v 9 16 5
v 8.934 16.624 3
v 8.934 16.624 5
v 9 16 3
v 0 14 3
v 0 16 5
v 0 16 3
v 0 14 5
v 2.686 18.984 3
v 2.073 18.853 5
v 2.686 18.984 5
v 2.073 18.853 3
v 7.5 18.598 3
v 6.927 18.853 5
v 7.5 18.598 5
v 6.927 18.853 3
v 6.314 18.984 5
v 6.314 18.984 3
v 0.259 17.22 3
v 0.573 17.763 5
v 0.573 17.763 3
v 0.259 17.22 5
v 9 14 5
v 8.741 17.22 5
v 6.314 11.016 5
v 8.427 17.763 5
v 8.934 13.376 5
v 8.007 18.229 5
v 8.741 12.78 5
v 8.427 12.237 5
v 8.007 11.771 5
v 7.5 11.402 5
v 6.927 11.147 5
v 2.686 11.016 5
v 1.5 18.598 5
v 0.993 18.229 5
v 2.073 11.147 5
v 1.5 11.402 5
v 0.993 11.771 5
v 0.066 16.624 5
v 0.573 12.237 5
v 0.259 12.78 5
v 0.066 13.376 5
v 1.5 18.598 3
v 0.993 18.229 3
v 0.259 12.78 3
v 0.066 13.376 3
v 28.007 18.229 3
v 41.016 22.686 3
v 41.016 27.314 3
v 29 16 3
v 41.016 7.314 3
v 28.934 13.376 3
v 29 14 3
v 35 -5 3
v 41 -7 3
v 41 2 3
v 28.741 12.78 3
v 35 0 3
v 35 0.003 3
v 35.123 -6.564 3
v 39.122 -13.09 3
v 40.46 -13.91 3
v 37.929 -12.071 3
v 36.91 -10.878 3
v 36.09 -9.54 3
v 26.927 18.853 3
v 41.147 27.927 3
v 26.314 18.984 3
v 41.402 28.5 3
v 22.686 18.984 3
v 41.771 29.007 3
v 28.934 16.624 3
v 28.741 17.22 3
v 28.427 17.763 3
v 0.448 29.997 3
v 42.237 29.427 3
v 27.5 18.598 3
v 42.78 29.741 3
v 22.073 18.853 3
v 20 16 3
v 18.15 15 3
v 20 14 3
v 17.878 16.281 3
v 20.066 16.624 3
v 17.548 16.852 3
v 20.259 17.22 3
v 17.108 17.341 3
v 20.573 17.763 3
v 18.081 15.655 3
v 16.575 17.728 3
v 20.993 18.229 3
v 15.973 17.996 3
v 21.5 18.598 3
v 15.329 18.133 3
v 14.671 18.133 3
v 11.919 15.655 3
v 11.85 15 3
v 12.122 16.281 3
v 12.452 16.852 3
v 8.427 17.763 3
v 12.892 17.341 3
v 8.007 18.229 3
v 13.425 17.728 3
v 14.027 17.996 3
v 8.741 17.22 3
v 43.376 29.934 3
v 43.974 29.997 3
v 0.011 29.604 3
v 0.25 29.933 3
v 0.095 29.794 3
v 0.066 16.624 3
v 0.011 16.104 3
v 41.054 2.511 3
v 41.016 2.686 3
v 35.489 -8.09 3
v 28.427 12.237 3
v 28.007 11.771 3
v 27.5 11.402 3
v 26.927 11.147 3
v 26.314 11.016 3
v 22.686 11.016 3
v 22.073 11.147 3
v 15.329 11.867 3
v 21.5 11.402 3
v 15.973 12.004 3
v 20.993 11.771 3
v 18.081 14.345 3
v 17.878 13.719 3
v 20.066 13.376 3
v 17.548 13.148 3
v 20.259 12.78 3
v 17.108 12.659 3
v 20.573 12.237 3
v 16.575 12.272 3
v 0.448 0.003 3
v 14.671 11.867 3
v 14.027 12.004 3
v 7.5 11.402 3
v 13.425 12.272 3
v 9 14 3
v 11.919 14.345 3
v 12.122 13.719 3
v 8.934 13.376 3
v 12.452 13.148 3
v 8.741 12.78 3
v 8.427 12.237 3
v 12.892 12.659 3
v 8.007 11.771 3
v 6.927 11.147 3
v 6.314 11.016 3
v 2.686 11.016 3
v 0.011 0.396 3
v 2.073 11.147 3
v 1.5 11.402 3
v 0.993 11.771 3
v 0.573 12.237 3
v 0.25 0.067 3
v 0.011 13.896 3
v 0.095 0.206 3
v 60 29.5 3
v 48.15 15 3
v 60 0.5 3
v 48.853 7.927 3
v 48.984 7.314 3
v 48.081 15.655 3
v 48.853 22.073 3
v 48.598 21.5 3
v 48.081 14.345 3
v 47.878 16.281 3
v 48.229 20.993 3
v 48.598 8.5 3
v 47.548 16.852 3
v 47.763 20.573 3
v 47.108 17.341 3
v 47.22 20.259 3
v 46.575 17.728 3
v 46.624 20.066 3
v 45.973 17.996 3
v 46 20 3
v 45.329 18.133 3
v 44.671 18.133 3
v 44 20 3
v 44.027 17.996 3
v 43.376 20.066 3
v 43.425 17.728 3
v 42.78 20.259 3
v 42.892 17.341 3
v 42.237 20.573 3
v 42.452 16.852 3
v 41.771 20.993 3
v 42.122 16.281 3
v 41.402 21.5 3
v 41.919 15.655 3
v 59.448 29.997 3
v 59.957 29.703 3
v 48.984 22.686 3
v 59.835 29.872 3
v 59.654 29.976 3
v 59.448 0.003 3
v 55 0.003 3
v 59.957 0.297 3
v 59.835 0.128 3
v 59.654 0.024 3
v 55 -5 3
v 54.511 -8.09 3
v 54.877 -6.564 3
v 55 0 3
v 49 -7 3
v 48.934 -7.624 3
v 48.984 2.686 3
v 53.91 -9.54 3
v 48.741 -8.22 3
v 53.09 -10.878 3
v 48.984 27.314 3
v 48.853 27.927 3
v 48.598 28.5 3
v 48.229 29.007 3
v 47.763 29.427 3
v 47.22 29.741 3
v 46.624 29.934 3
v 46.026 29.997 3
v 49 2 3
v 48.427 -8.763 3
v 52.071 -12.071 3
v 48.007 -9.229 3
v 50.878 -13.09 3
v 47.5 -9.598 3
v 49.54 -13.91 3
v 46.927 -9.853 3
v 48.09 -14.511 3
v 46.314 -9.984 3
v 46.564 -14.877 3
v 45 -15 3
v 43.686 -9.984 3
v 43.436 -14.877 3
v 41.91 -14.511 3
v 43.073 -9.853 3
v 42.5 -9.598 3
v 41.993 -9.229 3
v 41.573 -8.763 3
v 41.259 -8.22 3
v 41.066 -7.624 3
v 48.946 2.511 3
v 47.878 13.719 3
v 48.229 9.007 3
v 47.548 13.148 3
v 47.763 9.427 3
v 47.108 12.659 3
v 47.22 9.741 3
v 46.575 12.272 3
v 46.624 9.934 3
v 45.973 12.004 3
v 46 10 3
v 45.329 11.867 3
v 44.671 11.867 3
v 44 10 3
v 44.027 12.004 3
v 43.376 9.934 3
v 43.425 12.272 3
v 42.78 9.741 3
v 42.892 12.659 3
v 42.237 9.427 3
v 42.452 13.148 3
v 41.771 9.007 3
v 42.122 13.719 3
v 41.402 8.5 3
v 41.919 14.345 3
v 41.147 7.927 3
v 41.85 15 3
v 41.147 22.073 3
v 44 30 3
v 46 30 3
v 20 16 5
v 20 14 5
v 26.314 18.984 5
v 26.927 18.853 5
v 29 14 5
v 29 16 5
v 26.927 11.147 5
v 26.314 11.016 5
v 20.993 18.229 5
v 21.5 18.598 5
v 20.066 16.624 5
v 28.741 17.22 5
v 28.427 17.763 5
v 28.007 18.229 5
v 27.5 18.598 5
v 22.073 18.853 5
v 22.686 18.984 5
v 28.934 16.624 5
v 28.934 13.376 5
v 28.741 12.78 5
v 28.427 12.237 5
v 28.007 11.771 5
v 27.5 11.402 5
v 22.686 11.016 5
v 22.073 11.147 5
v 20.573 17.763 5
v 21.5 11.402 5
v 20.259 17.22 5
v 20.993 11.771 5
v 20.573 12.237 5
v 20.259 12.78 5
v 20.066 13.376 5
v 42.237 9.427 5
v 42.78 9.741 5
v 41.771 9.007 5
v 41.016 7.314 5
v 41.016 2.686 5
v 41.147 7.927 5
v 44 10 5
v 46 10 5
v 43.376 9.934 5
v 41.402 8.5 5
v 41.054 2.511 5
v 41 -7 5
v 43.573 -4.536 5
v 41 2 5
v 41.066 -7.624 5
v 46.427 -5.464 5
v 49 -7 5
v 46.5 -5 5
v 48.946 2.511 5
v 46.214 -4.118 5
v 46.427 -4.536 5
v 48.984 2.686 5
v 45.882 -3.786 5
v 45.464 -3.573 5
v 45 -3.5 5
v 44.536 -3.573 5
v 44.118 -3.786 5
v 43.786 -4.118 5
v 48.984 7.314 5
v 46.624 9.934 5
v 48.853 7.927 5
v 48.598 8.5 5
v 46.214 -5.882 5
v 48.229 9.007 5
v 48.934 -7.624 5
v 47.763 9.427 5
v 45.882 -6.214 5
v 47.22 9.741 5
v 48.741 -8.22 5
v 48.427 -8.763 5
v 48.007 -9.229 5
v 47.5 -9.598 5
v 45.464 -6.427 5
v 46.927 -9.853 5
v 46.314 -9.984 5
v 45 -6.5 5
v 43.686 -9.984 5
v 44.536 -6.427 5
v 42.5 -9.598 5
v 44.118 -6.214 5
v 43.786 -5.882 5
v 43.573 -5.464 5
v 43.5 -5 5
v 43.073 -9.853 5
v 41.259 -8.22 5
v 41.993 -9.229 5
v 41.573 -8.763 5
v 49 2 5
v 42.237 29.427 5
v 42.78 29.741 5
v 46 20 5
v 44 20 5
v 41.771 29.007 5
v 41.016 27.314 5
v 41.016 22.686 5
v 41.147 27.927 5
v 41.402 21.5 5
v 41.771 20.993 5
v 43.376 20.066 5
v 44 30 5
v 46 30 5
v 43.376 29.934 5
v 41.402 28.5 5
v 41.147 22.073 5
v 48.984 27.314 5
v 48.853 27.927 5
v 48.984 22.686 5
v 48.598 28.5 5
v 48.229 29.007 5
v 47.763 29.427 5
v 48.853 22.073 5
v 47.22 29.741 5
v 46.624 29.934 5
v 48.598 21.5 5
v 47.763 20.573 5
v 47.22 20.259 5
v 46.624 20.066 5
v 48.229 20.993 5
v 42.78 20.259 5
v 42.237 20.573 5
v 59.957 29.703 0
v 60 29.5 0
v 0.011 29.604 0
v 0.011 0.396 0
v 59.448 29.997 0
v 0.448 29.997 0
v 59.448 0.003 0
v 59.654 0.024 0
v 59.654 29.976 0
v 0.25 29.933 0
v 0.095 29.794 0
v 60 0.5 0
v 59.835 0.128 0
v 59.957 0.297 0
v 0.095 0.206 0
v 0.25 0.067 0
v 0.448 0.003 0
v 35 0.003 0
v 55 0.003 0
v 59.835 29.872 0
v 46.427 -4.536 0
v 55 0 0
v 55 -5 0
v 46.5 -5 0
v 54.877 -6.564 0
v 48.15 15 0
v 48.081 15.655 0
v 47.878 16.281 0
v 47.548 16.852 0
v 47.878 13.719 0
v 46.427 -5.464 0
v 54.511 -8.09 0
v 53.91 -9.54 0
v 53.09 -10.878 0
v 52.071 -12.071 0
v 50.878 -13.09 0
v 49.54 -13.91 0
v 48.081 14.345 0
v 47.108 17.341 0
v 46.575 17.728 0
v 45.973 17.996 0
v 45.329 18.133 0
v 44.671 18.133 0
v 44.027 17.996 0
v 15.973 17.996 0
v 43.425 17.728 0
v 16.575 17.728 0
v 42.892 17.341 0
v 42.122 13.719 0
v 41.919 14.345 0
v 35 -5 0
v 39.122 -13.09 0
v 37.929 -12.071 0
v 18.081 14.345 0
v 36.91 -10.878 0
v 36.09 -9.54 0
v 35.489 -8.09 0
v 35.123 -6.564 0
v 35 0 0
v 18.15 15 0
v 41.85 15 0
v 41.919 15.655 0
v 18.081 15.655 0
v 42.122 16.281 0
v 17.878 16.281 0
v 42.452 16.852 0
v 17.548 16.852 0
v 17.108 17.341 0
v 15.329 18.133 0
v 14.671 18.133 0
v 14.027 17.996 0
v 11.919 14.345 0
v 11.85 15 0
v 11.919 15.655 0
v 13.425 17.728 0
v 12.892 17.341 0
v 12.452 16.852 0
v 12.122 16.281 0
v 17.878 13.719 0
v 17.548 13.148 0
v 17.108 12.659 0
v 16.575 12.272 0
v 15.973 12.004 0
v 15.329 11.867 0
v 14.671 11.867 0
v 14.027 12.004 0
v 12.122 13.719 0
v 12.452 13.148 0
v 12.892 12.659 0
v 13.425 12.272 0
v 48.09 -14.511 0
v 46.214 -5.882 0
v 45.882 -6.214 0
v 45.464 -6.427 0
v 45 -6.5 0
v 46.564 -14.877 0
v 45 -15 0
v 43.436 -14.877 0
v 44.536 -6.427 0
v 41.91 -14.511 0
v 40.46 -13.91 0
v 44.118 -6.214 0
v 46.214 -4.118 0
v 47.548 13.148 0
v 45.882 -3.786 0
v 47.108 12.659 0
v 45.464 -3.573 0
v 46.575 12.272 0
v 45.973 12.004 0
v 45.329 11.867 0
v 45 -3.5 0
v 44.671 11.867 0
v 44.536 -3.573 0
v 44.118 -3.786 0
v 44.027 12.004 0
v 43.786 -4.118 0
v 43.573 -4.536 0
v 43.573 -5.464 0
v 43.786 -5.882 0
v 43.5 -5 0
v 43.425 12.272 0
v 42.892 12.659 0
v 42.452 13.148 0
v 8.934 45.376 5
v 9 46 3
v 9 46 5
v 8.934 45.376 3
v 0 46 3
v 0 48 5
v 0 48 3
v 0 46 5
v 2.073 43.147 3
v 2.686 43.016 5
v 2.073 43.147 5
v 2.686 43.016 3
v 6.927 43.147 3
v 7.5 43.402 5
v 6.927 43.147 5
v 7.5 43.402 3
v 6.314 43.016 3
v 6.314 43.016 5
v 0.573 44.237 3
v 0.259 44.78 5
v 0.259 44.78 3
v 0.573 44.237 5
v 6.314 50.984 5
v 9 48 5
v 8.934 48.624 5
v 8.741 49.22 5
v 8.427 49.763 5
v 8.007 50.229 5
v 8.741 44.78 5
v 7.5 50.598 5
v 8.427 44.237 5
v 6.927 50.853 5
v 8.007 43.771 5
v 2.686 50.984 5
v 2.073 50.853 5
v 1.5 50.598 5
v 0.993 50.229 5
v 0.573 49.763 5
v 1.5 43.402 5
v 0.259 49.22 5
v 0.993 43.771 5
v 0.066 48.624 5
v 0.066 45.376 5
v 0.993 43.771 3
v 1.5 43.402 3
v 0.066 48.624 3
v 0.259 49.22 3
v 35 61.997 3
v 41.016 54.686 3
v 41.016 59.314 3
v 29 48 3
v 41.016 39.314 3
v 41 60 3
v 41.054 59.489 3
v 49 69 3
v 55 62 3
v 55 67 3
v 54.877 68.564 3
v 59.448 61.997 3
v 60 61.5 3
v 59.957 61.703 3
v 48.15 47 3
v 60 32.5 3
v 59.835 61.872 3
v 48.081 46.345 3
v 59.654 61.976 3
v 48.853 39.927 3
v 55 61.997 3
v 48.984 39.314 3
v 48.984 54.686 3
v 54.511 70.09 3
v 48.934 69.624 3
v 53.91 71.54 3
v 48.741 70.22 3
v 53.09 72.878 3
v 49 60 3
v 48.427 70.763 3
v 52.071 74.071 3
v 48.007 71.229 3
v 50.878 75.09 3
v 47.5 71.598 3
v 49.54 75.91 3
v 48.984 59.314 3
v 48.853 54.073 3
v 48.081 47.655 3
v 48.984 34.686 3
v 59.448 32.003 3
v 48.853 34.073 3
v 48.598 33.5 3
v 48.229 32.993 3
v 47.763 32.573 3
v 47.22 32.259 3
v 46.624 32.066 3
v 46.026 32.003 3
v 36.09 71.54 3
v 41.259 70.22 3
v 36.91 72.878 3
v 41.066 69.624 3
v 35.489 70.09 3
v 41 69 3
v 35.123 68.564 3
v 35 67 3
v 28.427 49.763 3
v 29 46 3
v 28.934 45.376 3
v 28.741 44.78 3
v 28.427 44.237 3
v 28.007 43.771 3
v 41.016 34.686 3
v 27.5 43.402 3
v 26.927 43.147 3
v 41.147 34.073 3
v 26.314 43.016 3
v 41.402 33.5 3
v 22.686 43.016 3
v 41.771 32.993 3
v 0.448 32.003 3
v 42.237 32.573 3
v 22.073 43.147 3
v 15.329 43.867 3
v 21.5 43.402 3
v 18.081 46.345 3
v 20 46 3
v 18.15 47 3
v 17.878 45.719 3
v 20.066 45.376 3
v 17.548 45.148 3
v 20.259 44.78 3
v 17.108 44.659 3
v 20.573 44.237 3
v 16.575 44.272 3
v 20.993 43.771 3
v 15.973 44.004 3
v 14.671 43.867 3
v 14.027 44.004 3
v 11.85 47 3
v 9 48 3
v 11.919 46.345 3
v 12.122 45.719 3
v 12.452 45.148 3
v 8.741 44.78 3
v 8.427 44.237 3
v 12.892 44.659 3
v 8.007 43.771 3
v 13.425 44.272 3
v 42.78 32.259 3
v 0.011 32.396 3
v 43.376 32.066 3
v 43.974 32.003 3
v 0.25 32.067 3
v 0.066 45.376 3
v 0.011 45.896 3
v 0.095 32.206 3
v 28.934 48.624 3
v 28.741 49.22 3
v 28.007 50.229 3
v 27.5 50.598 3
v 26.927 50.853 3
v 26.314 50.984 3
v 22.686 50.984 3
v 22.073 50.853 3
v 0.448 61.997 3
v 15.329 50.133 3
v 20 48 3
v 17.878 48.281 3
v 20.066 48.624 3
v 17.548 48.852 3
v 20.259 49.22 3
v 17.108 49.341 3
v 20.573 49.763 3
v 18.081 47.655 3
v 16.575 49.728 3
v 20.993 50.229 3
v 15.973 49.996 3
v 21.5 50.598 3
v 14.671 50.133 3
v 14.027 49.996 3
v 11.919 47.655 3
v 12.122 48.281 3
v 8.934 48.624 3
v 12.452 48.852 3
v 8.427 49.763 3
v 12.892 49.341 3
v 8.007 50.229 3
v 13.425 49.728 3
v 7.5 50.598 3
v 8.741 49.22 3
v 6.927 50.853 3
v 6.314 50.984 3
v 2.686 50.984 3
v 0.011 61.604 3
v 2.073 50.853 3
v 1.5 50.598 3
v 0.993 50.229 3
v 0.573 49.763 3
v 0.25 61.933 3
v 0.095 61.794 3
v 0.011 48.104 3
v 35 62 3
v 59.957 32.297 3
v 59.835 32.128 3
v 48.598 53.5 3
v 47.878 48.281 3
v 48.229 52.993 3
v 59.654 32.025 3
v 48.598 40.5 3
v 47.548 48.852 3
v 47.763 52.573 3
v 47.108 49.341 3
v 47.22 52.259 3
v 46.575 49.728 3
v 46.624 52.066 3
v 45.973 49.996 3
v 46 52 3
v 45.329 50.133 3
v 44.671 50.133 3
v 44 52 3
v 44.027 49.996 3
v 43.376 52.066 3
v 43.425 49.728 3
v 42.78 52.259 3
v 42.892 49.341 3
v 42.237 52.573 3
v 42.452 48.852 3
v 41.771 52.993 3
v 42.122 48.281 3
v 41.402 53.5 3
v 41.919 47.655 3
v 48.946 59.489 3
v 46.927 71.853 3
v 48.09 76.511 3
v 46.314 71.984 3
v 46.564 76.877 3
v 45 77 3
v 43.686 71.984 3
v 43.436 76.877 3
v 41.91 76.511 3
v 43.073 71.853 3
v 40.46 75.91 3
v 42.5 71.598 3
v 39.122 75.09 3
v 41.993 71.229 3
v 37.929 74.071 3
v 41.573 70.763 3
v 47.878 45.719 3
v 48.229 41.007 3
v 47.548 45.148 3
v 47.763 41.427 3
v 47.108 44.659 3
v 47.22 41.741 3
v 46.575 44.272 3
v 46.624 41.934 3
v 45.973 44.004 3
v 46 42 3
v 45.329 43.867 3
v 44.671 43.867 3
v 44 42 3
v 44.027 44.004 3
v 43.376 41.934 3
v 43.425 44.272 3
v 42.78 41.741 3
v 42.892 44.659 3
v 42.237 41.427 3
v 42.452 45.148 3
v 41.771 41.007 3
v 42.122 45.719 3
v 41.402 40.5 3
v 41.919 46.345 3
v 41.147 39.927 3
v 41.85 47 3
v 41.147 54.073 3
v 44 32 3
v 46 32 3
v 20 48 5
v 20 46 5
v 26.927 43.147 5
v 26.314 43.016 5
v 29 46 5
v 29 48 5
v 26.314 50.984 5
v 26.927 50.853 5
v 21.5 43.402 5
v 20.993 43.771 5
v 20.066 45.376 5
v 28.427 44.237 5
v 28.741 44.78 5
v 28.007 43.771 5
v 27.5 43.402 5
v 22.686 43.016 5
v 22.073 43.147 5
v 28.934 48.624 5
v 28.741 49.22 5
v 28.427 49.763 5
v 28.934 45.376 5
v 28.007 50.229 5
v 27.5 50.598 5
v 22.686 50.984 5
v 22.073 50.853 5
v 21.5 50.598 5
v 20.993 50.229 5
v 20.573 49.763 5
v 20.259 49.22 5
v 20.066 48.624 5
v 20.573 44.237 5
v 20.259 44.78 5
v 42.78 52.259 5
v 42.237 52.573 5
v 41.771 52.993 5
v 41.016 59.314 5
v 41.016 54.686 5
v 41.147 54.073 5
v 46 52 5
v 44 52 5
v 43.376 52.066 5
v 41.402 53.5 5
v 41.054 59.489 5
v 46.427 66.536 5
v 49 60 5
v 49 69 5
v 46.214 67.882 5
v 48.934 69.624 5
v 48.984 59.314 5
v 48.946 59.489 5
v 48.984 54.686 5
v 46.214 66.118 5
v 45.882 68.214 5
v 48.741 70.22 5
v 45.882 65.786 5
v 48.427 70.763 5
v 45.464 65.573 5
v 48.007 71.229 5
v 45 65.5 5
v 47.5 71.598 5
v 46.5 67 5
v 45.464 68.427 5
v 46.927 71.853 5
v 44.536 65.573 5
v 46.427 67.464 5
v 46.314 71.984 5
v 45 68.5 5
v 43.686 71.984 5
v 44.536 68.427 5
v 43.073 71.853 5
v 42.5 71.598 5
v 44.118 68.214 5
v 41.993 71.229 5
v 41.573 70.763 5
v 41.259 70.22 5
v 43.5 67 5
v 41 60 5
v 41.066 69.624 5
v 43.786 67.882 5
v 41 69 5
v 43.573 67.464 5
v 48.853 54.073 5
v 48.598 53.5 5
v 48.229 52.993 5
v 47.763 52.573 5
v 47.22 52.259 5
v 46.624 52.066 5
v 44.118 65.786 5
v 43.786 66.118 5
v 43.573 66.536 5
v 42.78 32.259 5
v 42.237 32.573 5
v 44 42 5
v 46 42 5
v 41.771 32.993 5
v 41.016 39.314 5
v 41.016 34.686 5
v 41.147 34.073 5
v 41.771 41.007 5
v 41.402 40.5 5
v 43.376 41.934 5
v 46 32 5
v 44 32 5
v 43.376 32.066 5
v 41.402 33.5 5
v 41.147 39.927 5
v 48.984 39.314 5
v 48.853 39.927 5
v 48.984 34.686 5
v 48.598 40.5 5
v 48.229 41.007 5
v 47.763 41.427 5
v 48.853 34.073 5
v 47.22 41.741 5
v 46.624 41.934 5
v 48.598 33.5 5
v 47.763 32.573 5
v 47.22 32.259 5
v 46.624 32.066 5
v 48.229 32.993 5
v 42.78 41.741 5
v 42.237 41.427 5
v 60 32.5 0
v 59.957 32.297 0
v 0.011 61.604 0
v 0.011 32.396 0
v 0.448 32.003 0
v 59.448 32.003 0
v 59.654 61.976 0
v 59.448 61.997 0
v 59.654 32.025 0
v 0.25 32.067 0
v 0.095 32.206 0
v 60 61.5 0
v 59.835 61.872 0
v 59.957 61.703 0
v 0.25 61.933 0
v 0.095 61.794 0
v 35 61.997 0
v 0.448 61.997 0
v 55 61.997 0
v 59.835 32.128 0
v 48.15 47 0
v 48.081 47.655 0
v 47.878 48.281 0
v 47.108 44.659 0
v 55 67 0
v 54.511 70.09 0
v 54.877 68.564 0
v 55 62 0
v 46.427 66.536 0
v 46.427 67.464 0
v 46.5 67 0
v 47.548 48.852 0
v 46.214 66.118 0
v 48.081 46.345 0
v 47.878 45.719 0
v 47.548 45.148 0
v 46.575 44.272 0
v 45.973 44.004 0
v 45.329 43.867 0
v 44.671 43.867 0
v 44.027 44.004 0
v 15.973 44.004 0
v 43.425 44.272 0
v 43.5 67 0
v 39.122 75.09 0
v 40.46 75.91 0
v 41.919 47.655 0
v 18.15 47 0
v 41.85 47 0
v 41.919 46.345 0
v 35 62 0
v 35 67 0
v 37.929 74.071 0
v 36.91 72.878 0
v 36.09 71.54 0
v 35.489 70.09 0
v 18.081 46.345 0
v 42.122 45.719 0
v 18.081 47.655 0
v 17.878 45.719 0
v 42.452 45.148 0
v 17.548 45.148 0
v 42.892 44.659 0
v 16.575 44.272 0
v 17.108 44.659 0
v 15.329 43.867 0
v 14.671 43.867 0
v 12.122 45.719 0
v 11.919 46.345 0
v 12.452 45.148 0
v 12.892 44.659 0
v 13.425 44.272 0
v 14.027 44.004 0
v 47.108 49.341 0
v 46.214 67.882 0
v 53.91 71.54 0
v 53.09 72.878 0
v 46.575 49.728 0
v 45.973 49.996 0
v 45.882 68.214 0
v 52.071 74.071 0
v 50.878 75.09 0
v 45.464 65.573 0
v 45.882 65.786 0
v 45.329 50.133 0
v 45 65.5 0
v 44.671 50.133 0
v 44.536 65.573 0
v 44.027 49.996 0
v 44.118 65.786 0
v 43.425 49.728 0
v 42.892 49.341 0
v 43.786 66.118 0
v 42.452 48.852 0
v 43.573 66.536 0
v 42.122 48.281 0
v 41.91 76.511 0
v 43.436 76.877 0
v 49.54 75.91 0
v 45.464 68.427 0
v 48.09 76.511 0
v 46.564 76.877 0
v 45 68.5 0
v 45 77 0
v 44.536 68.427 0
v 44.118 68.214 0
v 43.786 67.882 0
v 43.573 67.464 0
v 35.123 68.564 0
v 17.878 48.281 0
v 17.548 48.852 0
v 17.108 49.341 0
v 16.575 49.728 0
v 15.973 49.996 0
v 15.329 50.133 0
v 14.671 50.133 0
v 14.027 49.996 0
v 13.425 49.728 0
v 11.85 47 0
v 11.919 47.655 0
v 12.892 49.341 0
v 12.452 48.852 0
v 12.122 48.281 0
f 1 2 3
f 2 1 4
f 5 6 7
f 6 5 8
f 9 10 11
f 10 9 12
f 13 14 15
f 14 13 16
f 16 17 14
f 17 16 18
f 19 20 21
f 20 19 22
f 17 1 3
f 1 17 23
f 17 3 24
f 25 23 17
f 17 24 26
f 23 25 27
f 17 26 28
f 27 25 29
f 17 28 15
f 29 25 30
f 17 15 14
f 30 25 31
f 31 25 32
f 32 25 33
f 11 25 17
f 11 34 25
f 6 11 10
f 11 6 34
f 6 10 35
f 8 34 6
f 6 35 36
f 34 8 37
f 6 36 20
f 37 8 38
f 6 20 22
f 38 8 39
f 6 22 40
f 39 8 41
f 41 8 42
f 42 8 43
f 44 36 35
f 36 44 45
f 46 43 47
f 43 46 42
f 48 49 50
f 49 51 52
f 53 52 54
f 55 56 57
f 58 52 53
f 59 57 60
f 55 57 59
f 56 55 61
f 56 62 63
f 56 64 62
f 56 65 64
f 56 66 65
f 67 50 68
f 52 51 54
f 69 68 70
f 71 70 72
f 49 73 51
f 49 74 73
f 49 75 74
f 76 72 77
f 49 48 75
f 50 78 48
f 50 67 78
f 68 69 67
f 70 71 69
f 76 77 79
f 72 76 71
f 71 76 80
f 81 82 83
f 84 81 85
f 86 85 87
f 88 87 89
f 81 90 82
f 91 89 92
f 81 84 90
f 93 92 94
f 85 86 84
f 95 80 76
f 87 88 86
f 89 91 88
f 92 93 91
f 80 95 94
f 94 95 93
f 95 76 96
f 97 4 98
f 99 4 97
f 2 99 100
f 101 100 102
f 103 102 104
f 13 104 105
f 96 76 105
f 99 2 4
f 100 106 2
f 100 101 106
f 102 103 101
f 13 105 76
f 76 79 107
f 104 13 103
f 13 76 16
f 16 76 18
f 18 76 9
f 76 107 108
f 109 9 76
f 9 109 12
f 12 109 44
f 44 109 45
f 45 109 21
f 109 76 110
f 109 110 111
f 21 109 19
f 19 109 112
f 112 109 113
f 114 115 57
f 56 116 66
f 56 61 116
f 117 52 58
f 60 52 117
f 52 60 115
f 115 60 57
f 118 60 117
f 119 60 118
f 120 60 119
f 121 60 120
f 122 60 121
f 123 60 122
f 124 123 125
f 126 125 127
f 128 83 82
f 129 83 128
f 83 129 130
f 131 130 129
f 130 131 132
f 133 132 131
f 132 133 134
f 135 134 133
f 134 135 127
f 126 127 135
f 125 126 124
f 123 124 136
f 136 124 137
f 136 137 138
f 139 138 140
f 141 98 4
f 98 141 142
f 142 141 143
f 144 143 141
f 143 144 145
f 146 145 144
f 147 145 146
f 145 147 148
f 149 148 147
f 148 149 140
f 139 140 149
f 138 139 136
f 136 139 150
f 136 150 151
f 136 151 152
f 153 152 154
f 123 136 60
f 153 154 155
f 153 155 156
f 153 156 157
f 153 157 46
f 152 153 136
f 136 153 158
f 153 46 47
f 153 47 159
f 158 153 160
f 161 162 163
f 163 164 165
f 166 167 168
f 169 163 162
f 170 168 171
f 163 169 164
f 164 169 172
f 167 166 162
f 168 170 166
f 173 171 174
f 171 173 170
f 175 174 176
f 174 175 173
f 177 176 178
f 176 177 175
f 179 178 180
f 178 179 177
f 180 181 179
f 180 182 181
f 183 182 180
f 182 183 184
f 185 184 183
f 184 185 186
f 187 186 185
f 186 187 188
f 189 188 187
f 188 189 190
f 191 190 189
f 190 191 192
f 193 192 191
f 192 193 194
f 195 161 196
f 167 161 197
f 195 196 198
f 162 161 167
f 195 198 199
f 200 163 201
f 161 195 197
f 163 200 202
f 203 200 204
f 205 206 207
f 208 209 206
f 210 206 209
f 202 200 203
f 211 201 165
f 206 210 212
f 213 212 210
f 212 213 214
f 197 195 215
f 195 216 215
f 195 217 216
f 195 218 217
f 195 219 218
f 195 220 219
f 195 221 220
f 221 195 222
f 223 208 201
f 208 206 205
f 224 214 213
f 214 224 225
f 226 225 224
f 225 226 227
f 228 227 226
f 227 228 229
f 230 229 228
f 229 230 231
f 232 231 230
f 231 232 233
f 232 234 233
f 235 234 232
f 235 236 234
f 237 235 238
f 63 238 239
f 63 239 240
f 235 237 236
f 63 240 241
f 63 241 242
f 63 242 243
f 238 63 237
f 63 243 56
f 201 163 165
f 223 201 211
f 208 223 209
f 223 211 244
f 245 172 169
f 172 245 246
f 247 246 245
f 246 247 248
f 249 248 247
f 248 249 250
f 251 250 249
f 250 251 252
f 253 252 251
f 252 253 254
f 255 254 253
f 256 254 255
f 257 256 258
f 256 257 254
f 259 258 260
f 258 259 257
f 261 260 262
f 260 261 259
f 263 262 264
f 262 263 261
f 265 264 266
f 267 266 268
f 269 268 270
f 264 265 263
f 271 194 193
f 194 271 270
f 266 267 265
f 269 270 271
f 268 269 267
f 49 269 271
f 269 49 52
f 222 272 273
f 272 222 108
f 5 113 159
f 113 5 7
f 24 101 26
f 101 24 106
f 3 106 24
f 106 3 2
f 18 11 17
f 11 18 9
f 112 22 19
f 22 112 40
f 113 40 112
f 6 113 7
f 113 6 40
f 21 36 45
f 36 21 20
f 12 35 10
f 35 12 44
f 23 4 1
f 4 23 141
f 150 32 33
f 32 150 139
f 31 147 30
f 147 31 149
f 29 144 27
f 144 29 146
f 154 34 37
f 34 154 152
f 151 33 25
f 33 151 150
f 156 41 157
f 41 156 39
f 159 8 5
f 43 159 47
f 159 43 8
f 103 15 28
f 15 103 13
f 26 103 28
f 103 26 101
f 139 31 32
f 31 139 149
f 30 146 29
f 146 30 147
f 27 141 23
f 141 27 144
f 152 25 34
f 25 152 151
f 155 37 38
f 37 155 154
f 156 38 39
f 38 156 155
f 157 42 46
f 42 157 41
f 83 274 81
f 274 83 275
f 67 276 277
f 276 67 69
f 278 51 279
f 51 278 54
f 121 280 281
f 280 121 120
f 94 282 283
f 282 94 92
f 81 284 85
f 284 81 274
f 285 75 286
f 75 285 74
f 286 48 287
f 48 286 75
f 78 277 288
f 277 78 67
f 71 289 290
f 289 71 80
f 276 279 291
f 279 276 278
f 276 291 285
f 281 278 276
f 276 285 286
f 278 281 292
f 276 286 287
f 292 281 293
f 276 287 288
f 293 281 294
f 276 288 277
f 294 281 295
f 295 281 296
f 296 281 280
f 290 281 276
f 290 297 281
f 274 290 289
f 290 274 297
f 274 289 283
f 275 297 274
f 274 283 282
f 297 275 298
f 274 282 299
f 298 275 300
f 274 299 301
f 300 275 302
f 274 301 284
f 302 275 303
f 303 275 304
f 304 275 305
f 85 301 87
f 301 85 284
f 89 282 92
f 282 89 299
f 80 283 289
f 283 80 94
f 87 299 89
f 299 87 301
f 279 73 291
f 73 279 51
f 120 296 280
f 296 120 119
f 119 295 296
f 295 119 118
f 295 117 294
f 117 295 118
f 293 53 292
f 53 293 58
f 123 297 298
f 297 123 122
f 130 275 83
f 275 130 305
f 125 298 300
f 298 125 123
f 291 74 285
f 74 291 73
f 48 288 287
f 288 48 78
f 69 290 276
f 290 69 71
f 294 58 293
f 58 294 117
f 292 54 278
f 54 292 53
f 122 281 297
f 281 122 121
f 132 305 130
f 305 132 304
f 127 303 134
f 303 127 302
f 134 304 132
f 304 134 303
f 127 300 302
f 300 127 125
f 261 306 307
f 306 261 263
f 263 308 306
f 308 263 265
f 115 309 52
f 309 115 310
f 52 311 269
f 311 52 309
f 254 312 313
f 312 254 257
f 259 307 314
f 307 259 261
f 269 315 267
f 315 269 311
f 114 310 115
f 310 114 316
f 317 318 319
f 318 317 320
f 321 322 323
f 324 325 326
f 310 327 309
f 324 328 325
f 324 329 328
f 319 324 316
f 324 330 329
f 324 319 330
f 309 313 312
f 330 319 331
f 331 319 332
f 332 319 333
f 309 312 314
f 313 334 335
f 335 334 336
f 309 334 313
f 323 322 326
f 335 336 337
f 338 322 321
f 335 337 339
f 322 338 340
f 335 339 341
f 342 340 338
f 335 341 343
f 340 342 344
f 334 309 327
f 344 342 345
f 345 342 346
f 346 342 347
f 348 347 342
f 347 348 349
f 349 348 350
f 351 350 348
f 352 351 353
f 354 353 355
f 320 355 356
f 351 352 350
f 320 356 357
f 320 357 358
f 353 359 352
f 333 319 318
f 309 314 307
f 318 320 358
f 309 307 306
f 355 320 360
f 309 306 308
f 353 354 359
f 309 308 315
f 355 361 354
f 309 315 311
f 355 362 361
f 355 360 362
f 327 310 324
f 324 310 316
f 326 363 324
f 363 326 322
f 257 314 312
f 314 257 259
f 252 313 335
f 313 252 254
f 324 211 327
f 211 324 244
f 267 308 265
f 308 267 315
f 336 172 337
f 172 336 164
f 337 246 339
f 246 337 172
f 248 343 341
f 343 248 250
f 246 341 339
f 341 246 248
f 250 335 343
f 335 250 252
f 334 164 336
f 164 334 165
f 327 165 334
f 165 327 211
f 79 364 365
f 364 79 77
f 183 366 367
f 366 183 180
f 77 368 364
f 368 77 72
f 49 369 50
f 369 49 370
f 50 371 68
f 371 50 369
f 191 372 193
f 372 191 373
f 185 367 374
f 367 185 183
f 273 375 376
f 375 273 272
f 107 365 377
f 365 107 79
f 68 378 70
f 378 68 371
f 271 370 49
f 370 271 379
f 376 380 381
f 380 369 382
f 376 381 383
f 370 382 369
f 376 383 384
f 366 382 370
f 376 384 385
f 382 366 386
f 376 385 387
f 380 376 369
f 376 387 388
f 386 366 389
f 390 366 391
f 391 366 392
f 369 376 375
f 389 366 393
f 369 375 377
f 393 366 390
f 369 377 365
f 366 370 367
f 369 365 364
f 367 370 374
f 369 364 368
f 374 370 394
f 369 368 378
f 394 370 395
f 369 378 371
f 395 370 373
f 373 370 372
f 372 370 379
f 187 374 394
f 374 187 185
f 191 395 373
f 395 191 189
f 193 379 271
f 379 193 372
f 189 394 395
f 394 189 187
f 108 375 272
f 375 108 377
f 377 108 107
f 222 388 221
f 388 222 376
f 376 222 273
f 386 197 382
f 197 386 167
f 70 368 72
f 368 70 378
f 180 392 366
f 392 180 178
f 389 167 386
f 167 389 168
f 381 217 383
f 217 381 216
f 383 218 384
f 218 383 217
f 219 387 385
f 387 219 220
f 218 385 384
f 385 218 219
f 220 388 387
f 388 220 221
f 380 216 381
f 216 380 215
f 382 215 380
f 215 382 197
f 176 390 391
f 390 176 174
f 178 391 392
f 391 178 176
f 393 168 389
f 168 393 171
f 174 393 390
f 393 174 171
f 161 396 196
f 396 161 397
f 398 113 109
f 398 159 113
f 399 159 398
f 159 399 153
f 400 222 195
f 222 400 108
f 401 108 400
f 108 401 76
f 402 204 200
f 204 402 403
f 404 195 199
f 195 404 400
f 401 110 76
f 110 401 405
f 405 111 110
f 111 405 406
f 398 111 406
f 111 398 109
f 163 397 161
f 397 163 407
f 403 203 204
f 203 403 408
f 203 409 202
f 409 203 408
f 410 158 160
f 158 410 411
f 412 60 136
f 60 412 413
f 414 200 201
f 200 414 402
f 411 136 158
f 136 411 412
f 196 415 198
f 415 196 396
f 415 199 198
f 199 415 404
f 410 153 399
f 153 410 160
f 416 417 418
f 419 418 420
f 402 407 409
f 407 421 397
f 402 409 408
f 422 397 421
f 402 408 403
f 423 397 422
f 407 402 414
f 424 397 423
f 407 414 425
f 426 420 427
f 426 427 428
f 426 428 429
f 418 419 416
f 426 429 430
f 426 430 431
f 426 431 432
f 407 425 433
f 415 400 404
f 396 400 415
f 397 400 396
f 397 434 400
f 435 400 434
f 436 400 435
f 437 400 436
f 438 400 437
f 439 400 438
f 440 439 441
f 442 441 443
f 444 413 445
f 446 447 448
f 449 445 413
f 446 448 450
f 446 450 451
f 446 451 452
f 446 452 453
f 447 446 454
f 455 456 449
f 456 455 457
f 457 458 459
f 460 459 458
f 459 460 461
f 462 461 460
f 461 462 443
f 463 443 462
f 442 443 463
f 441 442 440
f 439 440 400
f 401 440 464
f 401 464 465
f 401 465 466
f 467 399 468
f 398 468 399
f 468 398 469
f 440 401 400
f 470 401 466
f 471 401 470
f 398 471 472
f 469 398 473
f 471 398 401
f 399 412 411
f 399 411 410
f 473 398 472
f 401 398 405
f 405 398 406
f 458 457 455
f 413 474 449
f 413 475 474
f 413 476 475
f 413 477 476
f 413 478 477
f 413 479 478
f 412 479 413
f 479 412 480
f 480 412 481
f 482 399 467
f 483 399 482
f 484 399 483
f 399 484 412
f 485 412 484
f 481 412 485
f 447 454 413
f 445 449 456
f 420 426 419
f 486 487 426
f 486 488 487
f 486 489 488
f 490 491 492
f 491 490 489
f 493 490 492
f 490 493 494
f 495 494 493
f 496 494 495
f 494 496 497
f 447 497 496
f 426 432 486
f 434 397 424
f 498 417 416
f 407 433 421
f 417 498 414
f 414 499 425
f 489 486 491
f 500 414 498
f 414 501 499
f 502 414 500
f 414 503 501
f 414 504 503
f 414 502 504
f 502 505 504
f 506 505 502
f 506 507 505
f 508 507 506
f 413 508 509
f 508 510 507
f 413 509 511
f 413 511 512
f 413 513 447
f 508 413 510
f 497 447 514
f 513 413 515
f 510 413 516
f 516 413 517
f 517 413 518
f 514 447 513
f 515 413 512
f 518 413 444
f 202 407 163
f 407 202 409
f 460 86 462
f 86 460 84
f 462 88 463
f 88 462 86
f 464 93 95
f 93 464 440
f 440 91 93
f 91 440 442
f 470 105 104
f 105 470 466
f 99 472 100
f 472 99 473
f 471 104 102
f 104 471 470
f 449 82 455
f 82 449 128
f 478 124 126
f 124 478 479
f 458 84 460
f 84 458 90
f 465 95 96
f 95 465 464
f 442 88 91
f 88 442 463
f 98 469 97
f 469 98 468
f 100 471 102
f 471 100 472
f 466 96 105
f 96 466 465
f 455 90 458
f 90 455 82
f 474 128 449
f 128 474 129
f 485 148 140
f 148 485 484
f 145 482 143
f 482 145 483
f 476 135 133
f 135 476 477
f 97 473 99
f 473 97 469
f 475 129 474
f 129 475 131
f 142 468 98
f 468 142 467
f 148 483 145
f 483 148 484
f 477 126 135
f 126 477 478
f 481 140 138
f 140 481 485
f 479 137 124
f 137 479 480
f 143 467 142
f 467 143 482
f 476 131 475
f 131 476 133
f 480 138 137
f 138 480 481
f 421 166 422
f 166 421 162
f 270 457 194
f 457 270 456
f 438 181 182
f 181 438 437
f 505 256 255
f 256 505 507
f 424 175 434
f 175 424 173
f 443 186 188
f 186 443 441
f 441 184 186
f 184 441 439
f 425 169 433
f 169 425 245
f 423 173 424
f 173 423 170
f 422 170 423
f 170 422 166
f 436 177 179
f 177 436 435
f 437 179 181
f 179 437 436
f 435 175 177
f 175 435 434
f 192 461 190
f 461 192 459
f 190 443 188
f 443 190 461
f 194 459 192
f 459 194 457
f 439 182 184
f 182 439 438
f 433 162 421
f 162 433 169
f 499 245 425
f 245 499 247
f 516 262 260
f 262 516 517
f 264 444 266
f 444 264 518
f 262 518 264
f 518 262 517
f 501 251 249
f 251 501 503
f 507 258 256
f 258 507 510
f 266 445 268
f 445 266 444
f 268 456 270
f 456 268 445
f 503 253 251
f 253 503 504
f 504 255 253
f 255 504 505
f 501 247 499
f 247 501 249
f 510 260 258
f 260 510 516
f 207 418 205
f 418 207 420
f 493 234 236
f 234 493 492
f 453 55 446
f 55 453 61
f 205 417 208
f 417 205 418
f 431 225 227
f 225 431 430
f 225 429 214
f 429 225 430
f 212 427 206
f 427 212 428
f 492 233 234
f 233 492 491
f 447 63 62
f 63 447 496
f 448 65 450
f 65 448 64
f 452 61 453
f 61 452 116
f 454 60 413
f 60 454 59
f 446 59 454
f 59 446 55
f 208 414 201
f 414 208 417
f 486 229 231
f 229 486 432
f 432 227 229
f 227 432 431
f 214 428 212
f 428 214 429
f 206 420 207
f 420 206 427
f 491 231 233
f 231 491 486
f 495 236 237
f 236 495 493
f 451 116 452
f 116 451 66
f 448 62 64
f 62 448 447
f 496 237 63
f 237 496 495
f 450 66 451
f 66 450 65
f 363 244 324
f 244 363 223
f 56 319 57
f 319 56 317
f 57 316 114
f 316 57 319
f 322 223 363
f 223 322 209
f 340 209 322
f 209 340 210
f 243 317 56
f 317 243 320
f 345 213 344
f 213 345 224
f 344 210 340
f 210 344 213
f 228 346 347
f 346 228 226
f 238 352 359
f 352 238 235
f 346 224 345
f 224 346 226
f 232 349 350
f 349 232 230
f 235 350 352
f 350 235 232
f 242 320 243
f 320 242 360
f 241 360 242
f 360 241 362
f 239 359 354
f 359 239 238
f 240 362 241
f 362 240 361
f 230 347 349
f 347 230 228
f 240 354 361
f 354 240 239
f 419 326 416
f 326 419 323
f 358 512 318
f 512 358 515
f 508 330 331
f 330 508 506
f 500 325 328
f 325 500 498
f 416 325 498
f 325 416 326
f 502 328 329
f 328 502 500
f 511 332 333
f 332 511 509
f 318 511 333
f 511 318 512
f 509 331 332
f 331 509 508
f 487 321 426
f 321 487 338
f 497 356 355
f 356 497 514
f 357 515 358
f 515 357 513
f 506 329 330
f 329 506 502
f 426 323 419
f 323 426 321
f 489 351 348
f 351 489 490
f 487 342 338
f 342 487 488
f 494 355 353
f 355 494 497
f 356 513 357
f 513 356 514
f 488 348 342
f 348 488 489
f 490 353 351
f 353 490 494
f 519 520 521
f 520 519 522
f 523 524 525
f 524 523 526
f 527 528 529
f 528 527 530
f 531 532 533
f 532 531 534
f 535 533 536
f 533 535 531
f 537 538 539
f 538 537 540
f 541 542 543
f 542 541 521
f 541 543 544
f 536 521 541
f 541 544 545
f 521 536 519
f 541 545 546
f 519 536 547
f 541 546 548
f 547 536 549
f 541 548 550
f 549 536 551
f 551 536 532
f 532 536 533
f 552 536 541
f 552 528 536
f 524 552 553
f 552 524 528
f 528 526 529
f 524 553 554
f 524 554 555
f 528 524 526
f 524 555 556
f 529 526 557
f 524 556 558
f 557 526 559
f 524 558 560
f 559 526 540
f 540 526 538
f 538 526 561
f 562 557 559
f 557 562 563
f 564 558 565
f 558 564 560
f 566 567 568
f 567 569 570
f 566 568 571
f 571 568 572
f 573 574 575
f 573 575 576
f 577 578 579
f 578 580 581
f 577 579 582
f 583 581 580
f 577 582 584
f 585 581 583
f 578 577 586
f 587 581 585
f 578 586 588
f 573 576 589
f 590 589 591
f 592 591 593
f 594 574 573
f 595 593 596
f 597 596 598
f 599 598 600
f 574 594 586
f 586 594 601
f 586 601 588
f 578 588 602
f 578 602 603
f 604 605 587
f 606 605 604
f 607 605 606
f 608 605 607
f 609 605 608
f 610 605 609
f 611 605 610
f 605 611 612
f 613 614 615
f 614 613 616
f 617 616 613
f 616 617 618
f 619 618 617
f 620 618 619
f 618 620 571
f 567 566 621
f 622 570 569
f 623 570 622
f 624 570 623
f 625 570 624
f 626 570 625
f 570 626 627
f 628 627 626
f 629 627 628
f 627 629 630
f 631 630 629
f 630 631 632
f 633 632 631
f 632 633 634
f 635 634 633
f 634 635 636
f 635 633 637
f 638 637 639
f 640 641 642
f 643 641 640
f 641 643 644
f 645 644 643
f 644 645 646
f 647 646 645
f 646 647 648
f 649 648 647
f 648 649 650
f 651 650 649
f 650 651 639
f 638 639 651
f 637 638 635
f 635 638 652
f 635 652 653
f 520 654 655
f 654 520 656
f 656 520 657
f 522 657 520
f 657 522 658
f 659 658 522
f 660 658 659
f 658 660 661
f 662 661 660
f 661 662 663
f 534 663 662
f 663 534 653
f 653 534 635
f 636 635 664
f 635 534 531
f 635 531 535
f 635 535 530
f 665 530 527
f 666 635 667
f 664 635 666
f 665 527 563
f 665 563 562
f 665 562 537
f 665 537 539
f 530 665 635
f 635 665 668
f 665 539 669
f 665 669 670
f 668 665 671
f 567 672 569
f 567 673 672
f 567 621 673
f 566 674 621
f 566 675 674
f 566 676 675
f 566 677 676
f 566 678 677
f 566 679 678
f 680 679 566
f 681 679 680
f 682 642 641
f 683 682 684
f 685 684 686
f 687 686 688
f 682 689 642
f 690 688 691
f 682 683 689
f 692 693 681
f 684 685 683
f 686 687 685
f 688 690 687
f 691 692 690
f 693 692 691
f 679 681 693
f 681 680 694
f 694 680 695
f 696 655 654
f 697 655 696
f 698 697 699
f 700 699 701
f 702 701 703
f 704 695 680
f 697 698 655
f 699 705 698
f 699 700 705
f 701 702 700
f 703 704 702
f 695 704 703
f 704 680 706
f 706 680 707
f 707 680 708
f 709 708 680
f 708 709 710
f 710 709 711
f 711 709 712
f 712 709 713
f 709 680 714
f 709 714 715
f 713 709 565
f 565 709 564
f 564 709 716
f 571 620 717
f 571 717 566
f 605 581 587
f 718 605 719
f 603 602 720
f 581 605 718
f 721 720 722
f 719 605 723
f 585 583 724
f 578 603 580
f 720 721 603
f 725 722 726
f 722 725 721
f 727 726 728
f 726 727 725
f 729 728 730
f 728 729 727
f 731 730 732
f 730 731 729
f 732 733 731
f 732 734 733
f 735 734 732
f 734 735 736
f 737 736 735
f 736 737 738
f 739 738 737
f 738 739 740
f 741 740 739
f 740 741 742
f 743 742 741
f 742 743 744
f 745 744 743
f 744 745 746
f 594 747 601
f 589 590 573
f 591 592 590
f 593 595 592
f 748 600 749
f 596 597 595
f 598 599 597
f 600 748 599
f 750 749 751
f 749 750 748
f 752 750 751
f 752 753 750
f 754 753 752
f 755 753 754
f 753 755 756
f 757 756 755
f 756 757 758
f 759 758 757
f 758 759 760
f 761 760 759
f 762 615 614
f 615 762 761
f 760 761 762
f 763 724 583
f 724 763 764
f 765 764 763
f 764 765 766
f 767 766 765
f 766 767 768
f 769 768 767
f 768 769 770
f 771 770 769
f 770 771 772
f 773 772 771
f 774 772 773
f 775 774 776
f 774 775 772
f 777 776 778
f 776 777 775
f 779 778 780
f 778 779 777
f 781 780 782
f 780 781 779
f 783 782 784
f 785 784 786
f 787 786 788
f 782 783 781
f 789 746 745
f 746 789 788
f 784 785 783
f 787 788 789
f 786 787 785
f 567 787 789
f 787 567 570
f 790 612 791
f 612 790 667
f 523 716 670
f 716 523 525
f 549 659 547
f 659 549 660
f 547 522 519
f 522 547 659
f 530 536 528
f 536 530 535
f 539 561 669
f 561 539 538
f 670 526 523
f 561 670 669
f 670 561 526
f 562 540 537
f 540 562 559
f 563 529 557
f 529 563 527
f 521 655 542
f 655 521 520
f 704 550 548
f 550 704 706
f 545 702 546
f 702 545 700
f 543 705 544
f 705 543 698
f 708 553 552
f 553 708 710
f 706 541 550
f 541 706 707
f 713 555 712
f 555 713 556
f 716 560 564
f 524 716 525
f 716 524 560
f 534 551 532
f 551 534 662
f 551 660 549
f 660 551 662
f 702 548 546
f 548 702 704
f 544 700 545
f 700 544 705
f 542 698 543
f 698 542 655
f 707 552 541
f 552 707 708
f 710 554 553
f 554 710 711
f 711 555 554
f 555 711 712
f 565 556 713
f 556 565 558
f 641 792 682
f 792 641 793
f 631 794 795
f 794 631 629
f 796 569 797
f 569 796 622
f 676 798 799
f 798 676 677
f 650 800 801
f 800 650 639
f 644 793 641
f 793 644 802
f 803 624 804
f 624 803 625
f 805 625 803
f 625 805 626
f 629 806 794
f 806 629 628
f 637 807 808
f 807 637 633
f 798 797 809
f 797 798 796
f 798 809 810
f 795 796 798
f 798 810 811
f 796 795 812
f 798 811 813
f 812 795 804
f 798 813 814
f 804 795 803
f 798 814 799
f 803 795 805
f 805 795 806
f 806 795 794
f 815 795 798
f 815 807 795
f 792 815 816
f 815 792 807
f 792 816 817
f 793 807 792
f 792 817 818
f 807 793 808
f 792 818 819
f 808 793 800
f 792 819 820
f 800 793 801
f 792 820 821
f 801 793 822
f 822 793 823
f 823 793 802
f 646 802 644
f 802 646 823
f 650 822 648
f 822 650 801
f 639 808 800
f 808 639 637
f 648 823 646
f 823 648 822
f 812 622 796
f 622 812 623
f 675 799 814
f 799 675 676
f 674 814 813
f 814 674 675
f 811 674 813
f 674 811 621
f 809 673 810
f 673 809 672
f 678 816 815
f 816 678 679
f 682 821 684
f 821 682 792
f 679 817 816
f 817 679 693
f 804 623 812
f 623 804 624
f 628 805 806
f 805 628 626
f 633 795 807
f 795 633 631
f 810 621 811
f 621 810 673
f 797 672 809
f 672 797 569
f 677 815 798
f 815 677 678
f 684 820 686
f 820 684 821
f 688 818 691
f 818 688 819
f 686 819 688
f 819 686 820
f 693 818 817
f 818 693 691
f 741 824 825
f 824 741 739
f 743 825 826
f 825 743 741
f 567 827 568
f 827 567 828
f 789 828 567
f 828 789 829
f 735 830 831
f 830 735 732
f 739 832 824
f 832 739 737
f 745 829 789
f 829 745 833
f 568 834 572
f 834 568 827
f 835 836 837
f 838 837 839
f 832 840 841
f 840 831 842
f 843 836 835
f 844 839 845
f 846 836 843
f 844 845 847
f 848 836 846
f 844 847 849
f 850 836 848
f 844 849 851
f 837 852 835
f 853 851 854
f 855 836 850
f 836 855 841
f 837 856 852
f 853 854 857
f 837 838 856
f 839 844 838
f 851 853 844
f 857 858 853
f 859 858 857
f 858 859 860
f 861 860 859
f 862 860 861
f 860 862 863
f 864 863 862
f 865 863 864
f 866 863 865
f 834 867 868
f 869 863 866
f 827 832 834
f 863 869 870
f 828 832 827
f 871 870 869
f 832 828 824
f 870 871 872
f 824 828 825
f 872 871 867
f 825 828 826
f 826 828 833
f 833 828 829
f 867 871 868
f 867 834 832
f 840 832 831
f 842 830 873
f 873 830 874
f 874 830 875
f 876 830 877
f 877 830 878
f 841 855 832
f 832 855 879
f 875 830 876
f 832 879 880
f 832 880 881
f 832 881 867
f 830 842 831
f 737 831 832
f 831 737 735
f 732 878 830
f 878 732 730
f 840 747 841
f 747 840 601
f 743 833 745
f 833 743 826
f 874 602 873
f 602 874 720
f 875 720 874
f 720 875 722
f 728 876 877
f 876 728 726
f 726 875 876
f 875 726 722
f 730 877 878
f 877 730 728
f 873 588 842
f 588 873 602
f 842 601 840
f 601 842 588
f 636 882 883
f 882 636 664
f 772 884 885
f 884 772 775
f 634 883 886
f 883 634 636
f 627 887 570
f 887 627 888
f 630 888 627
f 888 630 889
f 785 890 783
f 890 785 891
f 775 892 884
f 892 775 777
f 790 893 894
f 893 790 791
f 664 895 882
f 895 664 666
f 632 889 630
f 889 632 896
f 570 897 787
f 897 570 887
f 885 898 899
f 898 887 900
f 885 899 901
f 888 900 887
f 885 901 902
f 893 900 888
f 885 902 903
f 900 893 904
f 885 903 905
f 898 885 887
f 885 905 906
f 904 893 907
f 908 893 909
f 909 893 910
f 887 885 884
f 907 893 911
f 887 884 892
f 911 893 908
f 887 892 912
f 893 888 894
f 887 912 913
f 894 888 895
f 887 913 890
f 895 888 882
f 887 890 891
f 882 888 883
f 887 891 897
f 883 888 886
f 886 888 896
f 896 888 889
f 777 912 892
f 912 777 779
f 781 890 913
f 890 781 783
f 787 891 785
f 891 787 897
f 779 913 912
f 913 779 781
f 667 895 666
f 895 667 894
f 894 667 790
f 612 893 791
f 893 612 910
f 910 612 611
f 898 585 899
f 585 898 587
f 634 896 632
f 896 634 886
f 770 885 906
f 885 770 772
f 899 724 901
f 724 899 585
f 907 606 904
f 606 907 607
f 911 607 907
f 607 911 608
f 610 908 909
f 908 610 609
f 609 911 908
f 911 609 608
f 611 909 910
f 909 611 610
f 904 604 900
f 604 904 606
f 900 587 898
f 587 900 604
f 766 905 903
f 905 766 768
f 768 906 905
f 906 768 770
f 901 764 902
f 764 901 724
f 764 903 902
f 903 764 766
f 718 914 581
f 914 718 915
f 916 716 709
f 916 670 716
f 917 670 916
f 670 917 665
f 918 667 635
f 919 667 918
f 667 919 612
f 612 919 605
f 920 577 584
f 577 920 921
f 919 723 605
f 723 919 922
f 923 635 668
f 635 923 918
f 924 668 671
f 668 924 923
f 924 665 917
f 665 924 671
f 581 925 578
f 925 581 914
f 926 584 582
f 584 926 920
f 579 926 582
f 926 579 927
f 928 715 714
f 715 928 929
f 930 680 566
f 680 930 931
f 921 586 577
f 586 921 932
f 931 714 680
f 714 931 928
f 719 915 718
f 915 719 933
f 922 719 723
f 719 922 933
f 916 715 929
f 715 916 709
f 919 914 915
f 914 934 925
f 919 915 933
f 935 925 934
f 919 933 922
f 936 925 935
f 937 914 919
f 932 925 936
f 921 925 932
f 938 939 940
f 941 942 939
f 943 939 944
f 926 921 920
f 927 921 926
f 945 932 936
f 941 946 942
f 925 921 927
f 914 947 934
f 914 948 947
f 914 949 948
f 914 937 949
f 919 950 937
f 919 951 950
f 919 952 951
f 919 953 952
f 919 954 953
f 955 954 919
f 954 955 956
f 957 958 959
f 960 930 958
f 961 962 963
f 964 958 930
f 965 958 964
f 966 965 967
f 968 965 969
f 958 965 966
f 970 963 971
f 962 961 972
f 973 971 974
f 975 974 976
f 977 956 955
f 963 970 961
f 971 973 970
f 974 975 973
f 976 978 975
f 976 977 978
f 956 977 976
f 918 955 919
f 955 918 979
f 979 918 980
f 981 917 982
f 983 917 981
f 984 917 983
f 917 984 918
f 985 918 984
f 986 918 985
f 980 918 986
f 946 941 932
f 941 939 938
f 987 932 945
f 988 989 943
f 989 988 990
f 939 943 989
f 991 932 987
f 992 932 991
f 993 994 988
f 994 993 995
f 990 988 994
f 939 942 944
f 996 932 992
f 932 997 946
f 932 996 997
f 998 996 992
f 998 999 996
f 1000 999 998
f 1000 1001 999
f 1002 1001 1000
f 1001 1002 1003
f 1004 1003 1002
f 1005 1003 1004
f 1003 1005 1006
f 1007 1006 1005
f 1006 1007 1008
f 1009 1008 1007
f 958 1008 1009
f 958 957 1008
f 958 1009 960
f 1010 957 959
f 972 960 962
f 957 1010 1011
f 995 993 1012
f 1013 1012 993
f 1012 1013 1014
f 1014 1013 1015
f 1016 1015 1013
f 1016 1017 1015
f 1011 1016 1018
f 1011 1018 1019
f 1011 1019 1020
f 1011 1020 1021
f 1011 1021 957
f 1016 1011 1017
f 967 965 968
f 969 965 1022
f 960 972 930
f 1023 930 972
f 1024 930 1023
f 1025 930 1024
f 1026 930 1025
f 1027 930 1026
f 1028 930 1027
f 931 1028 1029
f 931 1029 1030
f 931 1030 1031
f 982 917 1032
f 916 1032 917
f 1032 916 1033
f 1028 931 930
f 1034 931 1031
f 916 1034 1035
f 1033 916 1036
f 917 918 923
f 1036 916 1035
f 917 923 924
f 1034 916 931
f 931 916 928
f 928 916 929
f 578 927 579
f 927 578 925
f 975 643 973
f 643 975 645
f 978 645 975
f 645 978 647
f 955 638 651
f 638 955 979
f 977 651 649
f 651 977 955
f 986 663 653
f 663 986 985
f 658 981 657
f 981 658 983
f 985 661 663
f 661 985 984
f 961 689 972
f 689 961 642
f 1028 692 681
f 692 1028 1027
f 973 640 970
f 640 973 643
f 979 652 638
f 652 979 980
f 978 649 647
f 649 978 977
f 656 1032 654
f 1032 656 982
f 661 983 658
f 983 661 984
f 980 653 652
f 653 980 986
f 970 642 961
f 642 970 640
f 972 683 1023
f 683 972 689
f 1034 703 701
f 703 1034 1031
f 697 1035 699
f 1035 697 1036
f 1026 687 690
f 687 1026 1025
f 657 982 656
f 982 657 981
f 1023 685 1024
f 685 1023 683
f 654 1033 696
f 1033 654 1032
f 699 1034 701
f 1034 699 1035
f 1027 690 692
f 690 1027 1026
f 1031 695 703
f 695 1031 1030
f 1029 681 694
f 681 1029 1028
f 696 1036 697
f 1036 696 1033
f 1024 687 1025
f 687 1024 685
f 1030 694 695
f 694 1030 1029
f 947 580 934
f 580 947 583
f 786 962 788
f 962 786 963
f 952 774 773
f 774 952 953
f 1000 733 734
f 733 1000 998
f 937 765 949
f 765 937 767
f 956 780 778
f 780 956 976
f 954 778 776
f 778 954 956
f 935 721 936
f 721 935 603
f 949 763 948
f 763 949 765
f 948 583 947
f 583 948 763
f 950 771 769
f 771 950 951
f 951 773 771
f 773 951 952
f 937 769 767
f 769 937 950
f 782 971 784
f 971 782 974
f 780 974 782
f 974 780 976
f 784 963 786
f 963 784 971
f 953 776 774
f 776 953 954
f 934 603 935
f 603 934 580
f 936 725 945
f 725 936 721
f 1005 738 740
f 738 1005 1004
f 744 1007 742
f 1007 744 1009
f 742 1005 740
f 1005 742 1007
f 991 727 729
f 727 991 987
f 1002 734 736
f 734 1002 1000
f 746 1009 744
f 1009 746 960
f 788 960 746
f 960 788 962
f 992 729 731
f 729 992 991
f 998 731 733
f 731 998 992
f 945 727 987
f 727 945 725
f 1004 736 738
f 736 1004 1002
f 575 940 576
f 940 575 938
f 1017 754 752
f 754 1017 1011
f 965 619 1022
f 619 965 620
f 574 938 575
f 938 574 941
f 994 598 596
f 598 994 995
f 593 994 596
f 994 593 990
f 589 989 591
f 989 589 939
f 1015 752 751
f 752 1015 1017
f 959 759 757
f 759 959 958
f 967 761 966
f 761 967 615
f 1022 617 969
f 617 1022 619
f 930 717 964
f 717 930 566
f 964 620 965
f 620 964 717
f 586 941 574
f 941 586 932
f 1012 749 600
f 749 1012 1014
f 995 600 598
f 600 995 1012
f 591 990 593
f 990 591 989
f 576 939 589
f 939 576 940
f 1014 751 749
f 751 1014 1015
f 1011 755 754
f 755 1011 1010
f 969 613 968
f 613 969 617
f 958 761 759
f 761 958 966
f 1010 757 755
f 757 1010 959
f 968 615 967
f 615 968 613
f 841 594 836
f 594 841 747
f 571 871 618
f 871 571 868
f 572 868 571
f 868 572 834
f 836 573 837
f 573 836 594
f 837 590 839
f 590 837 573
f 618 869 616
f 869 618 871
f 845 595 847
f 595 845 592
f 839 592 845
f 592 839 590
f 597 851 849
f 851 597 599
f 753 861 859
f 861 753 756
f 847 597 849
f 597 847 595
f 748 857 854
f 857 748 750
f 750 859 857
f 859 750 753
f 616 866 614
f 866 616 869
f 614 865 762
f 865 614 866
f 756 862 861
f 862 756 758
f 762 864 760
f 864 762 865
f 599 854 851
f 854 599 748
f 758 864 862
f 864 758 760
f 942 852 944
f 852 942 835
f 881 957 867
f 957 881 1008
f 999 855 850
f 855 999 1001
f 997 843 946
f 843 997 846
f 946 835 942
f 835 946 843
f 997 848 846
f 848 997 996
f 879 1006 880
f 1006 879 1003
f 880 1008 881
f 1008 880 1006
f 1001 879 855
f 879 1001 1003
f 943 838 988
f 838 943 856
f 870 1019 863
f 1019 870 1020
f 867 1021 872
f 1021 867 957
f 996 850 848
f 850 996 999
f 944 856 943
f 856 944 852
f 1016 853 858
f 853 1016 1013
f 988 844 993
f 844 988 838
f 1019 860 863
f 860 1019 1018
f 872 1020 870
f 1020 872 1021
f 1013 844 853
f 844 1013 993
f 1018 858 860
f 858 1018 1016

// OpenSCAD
// file: corner-coupler.scad
// RebeliX-T3DD
//
// corner-coupler
// GNU GPL v3
// Marek Žehra <marek@zehra.cz>
// http://www.tiskni3ddoma.cz
// Inspired by RebeliX

include <../configuration.scad>

module rounded_cube(size=[20,10,10],corner_radius=2){
    translate([corner_radius,corner_radius,0])hull(){
        for(x=[0,size[0]-corner_radius*2],y=[0,size[1]-corner_radius*2]) {
            translate([x,y,0])cylinder(r=corner_radius,h=size[2]);
        }
    }
}


module mount_jig(size=[30,8,2],middle_space=8) {
    rounded_cube(size=[size[0]/2-middle_space/2,size[1],size[2]],corner_radius=3);
    translate([size[0]/2+middle_space/2,0,0])
    rounded_cube(size=[size[0]/2-middle_space/2,size[1],size[2]],corner_radius=3);
}

module corner_coupler(size=[60,30,4],mount_hole_width=8,mount_height=2) {
  difference(){
	union(){
		rounded_cube([size[0],size[1],size[2]],corner_radius=0.5,$fn=15);
		
        translate([0,size[1]/2-mount_hole_width/2,size[2]])
        mount_jig(size=[size[1]-1,mount_hole_width,mount_height],middle_space=11,$fn=30);
        translate([size[0]/2+size[1]/2+mount_hole_width/2,0,size[2]])
        rotate([0,0,90])mount_jig(size=[size[1],mount_hole_width,mount_height],middle_space=10,$fn=30);
	}
		
	// Otvory pro srouby
    translate([size[1]/2,size[1]/2,-1]){
        cylinder(h=size[2]+2,r=M6_dia/2,$fn=30);
        translate([size[0]/2,0,0])cylinder(h=size[2]+2,r=M6_dia/2,$fn=30);
    }
  }
}

corner_coupler(size=[60,30,coupler_thickness],mount_hole_width=alu_hole_width,mount_height=2);
// file: ../configuration.scad
/*
	Konfiguracni soubor 3D tiskarny RebeliX X2
	
	Sledujte nas na:		  
			www.RepRap4U.cz
			www.facebook.com/RebeliX.cz
			https://twitter.com/reprap4u
			https://plus.google.com/+Reprap4uCz-3Dtiskarna-RebeliX
*/

/*================ Slic3r nastaveni ==========================*/

// Vyska vrstvy pro tisknuti dilu [mm]
layer_height = 0.3;

// Sirka vytlacovaneho materialu [mm]
extrusion_width = 0.66; //Slic3r->Print Settings->Advanced->Default extrusion width

/*==================== M6 sroub ==============================*/

// Rezerva prumeru hlavy sroubu [mm]
space = 1;

// Prumer hlavy M6 sroubu (pricte se rezerva) [mm]
M6_head_diameter = 10.6+space;
//M6_head_diameter = 12+space;

// Prumer M6 sroubu
M6_dia = 6.3;

// Vyska hlavy M6 sroubu (dulezite pro zapusteni hlavy sroubu do plastu) [mm]
M6_head_height = 3.6;
//M6_head_height = 4.5;

// Delka sroubu M6 [mm]
// M6x12
M6_lenght = 12;

// Sirka matky do profilu (pokud neni pouzita, tak 0)
//profile_nut_width = 9.5;
profile_nut_width = 0;

/*=================== Nastaveni dilu =========================*/

// Posun Z zakladny
z_base_offset = 11;

// Tloustka rohovych spojek
// 5 mm => sroub M6x14 s podlozkou
// 3 mm => sroub M6x12 s podlozkou
coupler_thickness = 3;

// Prumer 8mm tyce
rod_8mm_d = 8.2;

// Posun drzacku mezi x-motor a x-end
x_holder_position = 6.5;

// ALU profile hole width
alu_hole_width = 8;

/*======================== Motory ============================*/

// Delka motoru (ovlivni dily a delky tyci pro osy Z a Y)
//SX17-1003LQFE (doporuceno hlavne na osu Z)
motor_length = 29.5;
//SX17-1003 (doporuceno hlavne na osu Z), SX17-0503LQEF
//motor_length = 34;
//SX17-1005
//motor_length = 40;
//SX17-0905 - zde je jiz problem s velkou vyskou motoru na ose Z - musi se upravit endstop-holder
//motor_length = 48;

/*================ Remeny a remenicky ========================*/

// GT2 
belt_tooth_distance = 2;
belt_tooth_ratio = 0.5;

// T2.5
//belt_tooth_distance = 2.5;
//belt_tooth_ratio = 0.68;
// main file
// RebeliX
//
// corner-coupler-bottom
// GNU GPL v3
// Martin Neruda <neruda@reprap4u.cz>
// http://www.reprap4u.cz
// Inspired by Rebel II

include <../configuration.scad>
use <corner-coupler.scad>
//import("/Users/marek/ownCloud/ČVUT/Tiskni 3D Doma/RebeliX/STLs/corner-coupler-bottom_left.stl");


module corner_coupler_bottom(size=[60,30,coupler_thickness],mount_hole_width=alu_hole_width,mount_height=2,rubber_feet_d = 20) {
    corner_coupler(size,mount_hole_width,mount_height);
    
    translate([size[0]/2+size[1]/2,0,0])
    difference(){
        union(){
            hull(){
                cylinder(r=rubber_feet_d/2,h=coupler_thickness,$fn=40);    
                translate([0,-rubber_feet_d/4,0])cylinder(r=rubber_feet_d/2,h=coupler_thickness,$fn=40);
            }
            translate([-mount_hole_width/2,-rubber_feet_d/2,size[2]])rounded_cube([mount_hole_width,rubber_feet_d/4*3,mount_height],corner_radius=3,$fn=30);
        }
        translate([0,-rubber_feet_d/4,-1])cylinder(r=1.5,h=coupler_thickness+mount_height+2,$fn=20);
    }
}

corner_coupler_bottom();
translate([0,62,0])
mirror([0,1,0])
corner_coupler_bottom();
